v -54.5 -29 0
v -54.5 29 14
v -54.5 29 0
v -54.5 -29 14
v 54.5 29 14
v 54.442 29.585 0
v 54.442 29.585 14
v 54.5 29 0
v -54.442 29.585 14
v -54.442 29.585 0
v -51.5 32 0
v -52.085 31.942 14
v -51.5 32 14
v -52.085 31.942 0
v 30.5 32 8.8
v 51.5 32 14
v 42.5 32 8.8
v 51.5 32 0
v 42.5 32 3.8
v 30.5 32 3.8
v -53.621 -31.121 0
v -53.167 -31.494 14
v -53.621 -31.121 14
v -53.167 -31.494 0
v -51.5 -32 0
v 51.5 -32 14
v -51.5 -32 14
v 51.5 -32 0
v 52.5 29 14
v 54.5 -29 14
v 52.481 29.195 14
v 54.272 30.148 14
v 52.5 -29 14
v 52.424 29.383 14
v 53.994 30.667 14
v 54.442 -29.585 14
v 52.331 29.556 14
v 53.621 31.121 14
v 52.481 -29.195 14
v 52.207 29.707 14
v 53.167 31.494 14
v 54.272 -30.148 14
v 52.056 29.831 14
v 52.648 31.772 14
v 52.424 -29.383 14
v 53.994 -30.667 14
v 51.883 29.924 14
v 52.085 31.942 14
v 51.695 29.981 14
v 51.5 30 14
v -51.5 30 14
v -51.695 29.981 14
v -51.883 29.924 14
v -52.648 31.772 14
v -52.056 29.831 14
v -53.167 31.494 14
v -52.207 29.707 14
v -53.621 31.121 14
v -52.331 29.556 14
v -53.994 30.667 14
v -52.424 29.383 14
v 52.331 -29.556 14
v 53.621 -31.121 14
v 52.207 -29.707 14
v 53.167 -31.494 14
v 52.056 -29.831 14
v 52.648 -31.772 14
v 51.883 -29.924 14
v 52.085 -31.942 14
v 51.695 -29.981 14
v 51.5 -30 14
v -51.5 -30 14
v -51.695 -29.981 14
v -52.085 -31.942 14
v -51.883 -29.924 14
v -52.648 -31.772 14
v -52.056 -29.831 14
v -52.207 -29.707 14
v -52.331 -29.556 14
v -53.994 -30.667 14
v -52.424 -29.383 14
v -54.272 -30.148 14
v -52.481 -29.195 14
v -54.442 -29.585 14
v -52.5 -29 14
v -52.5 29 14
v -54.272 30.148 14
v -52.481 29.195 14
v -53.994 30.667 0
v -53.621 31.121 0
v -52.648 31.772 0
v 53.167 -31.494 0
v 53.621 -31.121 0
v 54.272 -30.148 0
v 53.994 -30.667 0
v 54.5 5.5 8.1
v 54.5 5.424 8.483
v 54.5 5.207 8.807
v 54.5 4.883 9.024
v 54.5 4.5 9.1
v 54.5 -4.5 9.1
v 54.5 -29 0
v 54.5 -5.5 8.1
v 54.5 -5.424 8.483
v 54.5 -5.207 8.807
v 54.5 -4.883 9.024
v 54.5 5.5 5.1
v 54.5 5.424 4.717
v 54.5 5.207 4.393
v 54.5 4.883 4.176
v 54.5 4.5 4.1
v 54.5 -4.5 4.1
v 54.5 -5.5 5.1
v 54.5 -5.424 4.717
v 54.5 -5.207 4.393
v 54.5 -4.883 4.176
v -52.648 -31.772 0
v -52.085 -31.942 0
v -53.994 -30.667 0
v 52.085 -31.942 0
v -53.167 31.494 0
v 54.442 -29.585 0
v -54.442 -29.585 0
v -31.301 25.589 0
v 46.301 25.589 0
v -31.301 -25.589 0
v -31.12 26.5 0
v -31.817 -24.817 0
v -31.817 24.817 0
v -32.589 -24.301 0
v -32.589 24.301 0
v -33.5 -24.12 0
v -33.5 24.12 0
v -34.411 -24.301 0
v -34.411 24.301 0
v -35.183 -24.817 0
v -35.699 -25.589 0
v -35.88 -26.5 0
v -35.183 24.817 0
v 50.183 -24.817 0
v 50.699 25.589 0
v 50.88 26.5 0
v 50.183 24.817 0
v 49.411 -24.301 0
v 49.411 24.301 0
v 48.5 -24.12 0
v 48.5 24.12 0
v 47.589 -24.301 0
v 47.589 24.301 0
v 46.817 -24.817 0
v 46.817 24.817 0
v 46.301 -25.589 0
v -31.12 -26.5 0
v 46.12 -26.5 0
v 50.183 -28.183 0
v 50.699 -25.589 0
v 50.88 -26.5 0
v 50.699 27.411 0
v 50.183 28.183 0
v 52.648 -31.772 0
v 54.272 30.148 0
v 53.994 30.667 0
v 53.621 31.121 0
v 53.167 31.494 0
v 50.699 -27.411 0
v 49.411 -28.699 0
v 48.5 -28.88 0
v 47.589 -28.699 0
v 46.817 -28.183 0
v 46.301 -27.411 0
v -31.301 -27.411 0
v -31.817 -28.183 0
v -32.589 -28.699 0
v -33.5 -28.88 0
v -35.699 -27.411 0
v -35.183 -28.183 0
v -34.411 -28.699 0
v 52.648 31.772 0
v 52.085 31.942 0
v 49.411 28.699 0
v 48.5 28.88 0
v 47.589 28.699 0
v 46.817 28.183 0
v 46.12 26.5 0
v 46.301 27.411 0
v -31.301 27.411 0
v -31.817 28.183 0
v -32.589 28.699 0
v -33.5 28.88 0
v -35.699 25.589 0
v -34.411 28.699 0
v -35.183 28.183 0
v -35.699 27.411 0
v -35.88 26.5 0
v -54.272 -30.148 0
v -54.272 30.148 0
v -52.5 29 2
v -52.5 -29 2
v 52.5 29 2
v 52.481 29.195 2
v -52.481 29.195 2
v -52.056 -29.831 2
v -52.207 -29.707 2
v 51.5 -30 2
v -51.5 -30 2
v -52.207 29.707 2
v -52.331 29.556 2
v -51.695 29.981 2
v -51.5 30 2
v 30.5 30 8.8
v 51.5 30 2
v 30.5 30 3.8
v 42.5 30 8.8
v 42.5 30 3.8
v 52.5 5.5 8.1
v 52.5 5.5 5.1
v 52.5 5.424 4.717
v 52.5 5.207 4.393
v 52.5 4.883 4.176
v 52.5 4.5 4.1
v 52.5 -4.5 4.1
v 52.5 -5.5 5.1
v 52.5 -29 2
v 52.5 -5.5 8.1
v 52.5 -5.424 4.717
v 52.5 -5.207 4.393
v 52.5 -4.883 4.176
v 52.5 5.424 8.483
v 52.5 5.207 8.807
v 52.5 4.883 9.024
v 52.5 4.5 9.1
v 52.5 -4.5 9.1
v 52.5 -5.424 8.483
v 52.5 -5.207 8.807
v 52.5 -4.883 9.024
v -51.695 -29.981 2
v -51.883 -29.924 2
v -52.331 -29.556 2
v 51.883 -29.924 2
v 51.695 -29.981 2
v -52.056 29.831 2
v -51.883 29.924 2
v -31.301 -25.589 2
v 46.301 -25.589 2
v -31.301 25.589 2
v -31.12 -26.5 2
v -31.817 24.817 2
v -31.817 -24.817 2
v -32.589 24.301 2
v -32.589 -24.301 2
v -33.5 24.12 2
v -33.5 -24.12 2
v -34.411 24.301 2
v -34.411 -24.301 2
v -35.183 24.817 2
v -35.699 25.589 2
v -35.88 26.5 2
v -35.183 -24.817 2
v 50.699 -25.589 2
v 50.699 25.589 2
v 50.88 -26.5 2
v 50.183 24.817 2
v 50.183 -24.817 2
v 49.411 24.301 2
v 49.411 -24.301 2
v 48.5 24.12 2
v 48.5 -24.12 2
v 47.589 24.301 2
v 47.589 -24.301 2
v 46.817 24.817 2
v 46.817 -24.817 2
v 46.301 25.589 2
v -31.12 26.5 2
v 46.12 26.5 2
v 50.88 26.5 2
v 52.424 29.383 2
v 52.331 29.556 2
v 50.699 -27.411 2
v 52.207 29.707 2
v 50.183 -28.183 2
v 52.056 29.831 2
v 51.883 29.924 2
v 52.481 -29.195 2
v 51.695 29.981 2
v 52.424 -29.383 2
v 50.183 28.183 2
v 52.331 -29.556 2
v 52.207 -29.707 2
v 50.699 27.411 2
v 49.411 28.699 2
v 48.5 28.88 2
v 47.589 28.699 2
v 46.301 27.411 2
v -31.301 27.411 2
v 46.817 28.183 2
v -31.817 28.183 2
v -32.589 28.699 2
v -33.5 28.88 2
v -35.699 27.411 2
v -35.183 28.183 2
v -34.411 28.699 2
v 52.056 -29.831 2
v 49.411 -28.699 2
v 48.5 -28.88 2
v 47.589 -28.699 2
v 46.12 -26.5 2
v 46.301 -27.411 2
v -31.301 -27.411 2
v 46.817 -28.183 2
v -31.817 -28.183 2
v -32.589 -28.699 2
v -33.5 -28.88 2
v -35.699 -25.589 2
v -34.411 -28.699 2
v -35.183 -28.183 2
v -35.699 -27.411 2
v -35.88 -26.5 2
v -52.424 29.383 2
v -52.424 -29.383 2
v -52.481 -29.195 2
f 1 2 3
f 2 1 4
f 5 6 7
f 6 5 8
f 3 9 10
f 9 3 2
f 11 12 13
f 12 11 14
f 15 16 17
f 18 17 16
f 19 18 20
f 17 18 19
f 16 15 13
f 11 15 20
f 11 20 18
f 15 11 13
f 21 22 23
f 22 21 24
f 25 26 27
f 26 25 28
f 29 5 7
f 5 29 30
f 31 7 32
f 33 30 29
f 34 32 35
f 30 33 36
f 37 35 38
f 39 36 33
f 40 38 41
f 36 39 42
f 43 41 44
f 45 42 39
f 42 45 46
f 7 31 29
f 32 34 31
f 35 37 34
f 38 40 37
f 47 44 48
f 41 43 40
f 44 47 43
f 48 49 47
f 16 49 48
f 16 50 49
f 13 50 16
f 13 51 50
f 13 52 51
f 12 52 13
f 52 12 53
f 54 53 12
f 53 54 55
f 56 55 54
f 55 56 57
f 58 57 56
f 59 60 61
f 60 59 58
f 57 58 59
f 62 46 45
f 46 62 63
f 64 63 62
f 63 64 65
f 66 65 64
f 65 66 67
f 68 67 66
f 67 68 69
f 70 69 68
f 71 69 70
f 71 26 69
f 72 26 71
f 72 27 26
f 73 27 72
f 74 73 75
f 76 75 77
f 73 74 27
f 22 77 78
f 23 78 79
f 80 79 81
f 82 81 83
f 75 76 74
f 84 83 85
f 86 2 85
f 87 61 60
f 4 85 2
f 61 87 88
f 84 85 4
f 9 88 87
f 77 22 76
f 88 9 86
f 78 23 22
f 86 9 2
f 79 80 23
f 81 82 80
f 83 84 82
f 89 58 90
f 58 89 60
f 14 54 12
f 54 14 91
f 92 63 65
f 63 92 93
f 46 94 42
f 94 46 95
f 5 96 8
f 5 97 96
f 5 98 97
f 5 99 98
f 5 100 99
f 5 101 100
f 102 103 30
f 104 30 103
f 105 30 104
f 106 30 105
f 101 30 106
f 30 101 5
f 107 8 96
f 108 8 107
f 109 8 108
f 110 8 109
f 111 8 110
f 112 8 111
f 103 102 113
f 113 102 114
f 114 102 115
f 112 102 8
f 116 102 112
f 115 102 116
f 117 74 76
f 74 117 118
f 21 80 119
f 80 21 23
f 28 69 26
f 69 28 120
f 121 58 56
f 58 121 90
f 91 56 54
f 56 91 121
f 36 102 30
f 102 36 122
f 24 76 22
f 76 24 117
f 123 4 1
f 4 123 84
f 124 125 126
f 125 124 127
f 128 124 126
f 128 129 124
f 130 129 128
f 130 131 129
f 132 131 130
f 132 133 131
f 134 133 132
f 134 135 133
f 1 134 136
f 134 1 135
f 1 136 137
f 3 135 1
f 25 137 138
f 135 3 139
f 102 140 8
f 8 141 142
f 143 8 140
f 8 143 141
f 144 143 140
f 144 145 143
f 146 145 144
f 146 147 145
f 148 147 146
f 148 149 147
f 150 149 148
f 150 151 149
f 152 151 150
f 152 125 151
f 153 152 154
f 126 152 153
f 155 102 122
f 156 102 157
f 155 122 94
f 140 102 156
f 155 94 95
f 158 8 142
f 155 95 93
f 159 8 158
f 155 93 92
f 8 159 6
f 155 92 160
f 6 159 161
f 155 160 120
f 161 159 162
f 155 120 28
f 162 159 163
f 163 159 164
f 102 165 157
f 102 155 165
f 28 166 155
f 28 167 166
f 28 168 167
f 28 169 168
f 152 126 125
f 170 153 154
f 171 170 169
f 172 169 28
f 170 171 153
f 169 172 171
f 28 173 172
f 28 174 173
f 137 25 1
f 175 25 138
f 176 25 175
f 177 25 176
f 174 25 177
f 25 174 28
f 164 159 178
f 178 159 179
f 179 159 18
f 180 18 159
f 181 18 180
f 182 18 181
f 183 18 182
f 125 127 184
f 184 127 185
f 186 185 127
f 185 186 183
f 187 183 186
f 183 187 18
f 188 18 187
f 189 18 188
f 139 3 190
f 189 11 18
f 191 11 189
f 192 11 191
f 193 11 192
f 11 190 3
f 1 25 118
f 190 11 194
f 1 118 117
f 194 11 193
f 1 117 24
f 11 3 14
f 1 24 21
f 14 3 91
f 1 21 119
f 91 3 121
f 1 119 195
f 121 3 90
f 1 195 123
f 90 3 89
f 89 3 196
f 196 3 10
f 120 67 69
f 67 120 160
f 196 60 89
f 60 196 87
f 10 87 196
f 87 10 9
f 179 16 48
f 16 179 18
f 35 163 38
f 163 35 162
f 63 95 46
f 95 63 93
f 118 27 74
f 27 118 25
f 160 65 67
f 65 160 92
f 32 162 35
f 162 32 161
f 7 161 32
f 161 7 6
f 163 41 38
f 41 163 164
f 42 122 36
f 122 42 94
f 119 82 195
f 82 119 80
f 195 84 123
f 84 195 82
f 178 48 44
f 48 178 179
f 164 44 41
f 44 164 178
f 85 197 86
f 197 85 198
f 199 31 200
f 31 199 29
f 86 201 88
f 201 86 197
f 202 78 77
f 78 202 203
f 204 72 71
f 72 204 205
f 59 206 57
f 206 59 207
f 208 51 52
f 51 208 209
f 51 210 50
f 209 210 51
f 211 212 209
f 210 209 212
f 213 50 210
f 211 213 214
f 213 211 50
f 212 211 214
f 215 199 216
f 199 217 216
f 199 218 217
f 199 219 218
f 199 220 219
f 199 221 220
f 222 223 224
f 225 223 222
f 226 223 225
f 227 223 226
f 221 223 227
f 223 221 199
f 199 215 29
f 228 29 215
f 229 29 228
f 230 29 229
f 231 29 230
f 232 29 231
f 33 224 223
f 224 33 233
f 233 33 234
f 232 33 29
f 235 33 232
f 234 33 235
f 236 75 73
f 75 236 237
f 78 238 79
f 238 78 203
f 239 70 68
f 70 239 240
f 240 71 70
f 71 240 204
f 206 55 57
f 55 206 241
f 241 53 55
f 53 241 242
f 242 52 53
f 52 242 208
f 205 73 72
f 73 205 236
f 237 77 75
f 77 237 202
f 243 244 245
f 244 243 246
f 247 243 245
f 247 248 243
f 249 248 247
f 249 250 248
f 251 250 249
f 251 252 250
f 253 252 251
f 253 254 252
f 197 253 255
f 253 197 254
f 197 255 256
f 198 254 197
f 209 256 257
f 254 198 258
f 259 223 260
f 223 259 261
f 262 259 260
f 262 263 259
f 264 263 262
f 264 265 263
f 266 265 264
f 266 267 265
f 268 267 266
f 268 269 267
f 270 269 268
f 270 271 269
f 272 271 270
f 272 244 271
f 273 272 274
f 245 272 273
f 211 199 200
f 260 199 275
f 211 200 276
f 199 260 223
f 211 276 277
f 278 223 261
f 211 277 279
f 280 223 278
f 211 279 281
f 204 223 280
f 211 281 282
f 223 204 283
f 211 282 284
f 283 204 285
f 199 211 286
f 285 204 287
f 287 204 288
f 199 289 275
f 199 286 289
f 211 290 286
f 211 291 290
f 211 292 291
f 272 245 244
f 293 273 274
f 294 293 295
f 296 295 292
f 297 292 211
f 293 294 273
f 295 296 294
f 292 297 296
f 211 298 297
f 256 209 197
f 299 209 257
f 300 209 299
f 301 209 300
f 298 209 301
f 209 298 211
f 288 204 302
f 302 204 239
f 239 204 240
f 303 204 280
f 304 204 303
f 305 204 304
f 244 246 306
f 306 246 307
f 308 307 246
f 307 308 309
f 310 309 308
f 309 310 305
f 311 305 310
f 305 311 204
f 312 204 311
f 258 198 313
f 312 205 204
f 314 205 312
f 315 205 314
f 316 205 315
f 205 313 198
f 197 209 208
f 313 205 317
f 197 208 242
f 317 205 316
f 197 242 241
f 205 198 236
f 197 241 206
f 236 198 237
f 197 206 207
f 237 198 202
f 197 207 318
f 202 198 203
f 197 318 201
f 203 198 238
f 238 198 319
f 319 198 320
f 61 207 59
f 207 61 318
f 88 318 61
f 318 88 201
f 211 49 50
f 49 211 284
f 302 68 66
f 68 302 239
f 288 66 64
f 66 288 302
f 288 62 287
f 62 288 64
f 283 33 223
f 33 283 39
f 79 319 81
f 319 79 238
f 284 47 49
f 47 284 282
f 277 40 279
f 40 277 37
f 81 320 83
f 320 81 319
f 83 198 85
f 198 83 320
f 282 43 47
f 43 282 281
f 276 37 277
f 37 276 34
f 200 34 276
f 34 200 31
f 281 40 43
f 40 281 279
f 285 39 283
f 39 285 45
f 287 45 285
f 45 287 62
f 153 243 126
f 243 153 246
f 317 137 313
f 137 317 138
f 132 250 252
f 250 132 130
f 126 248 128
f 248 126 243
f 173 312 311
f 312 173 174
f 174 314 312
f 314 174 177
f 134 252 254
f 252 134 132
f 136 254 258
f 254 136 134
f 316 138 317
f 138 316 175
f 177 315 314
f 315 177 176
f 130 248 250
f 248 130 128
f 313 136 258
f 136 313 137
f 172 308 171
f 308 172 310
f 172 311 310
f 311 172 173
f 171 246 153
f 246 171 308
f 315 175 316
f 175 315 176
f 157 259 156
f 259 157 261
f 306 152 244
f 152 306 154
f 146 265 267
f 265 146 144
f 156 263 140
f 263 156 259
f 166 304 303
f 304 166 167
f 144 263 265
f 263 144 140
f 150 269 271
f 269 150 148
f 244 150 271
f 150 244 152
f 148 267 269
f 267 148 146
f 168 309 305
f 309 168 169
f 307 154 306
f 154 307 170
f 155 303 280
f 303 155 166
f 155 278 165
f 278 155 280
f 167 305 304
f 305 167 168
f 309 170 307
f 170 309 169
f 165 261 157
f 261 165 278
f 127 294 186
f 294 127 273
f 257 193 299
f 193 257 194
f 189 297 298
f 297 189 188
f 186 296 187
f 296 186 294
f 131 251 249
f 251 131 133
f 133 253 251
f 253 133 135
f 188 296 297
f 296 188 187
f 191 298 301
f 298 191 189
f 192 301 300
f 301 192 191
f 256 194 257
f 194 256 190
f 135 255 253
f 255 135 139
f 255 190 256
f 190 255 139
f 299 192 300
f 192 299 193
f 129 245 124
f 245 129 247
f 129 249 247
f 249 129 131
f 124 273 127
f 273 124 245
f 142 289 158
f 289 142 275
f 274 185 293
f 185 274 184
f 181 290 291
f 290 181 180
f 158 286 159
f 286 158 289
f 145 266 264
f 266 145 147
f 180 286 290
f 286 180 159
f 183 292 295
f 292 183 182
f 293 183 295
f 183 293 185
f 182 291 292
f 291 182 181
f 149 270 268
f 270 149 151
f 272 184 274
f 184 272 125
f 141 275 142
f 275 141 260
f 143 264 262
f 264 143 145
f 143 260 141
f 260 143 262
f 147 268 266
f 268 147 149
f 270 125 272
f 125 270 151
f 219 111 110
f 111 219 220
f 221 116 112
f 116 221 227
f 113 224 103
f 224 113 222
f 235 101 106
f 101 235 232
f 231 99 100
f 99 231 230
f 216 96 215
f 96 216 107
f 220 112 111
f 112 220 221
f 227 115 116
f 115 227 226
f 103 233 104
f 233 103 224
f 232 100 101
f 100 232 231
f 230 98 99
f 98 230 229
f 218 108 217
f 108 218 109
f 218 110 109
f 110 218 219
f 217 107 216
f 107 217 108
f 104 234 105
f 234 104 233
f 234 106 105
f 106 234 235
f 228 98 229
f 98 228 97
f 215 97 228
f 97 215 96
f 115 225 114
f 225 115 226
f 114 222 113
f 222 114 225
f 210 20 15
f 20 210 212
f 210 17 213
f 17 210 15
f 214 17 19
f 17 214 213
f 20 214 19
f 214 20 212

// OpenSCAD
// MacroPad RP2040 Case (Bottom and Sides)
// Companion to macropad_top_cover.scad
// Parametric design for Adafruit MacroPad RP2040 keyboard controller
// Author: Generated for CircuitPython EVM Controller project
// License: MIT

// =============================================================================
// PARAMETERS - Match your top cover dimensions
// =============================================================================

// RP2040 PCB parameters
pcb_length = 105;          // RP2040 PCB length (mm)
pcb_width = 60;            // RP2040 PCB width (mm)
pcb_thickness = 1.6;       // Standard PCB thickness (mm)
pcb_clearance = 1;         // Space around PCB (mm)
pcb_height_clearance = 8;  // Space above PCB for components (mm)

// Overall case dimensions (should match top cover)
bottom_thickness = 2;      // Thickness of bottom plate (mm)
wall_thickness = 2;        // Thickness of side walls (mm)
corner_radius = 3;         // Rounded corner radius (mm)
inner_corner_radius = 1;   // Rounded inner corner radius

case_length = pcb_length + (wall_thickness * 2);   // Total length of case (mm)
case_width = pcb_width +  + (wall_thickness * 2);  // Total width of case (mm)
case_height = 14;          // Height of case walls (mm)

// Top cover integration
top_cover_thickness = 3;   // Thickness of top cover (for fit calculation)
top_cover_lip = 1;         // How much top cover overlaps case walls (mm)

// USB port cutout
usb_width = 11;             // Width of USB-C port (mm)
usb_height = 5;            // ** Was 4 - Height of USB-C port (mm)
usb_offset_from_edge = 3;  // Distance from PCB edge to USB center (mm)
usb_position_y = 0;        // Y position along case width (0 = center)
usb_corner_radius = 1;     // Rounded corners for USB hole

// PCB mounting holes keep 2mm for wall in mind
mount_hole_diameter = 4.56;   // Diameter for M3 screws (mm)
mount_hole_positions = [   // [X, Y] positions relative to PCB center
    [-pcb_length/2 + 19, -26.5],   // Bottom left
    [pcb_length/2 - 4, -26.5],   // Bottom right  
    [-pcb_length/2 + 19, 26.5],    // Top left
    [pcb_length/2 - 4, 26.5]     // Top right
];

// Standoffs for PCB mounting
standoff_height = 6;         // Height of PCB standoffs (mm)
standoff_diameter = 5.2;     // Diameter of standoff base (mm)
standoff_hole_diameter = 2.5; // Hole diameter in standoff for screw (mm)

// 3D printing parameters
clearance = 0.2;           // General clearance (mm)
layer_height = 0.2;        // Your 3D printer layer height (mm)


// =============================================================================
// MAIN OBJECT
// =============================================================================

difference() {
    union() {
        // Main case body
        case_body();

        // PCB mounting standoffs
        pcb_standoffs();
    }        

    // Remove internal cavity
    internal_cavity();

    // Remove USB port hole
    usb_port_hole();
    
    // Do one of the following:
    // 1. Remove Reset port hole
    //reset_port_hole();

    // 2. Remove larger QWIC port hole
    qwiic_port_hole();

    // Remove PCB mounting holes
    pcb_mounting_holes();
}

// Optional: Show PCB position for reference (comment out for final print)
// %pcb_reference();

// =============================================================================
// MODULES (Functions)
// =============================================================================

// Create the main case body with walls
module case_body() {
    // Bottom plate
    hull() {
        // Four corner cylinders for rounded rectangle base
        translate([-(case_length/2 - corner_radius), -(case_width/2 - corner_radius), 0])
            cylinder(h = bottom_thickness, r = corner_radius, $fn = 32);
        
        translate([+(case_length/2 - corner_radius), -(case_width/2 - corner_radius), 0])
            cylinder(h = bottom_thickness, r = corner_radius, $fn = 32);
        
        translate([+(case_length/2 - corner_radius), +(case_width/2 - corner_radius), 0])
            cylinder(h = bottom_thickness, r = corner_radius, $fn = 32);
        
        translate([-(case_length/2 - corner_radius), +(case_width/2 - corner_radius), 0])
            cylinder(h = bottom_thickness, r = corner_radius, $fn = 32);
    }
    
    // Side walls
    difference() {
        // Outer wall
        hull() {
            translate([-(case_length/2 - corner_radius), -(case_width/2 - corner_radius), 0])
                cylinder(h = case_height, r = corner_radius, $fn = 32);
            
            translate([+(case_length/2 - corner_radius), -(case_width/2 - corner_radius), 0])
                cylinder(h = case_height, r = corner_radius, $fn = 32);
            
            translate([+(case_length/2 - corner_radius), +(case_width/2 - corner_radius), 0])
                cylinder(h = case_height, r = corner_radius, $fn = 32);
            
            translate([-(case_length/2 - corner_radius), +(case_width/2 - corner_radius), 0])
                cylinder(h = case_height, r = corner_radius, $fn = 32);
        }
        
        // Inner cavity (removed in main difference)
        translate([0, 0, bottom_thickness])
            hull() {
                inner_radius = corner_radius - wall_thickness;
                inner_length = case_length - 2 * wall_thickness;
                inner_width = case_width - 2 * wall_thickness;
                
                translate([-(inner_length/2 - inner_radius), -(inner_width/2 - inner_radius), 0])
                    cylinder(h = case_height, r = inner_radius, $fn = 32);
                
                translate([+(inner_length/2 - inner_radius), -(inner_width/2 - inner_radius), 0])
                    cylinder(h = case_height, r = inner_radius, $fn = 32);
                
                translate([+(inner_length/2 - inner_radius), +(inner_width/2 - inner_radius), 0])
                    cylinder(h = case_height, r = inner_radius, $fn = 32);
                
                translate([-(inner_length/2 - inner_radius), +(inner_width/2 - inner_radius), 0])
                    cylinder(h = case_height, r = inner_radius, $fn = 32);
            }
    }
    
    // Top cover lip/ledge
    translate([0, 0, case_height - top_cover_thickness]) {
        difference() {
            // Outer ledge
            hull() {
                translate([-(case_length/2 - corner_radius), -(case_width/2 - corner_radius), 0])
                    cylinder(h = top_cover_thickness, r = corner_radius, $fn = 32);
                
                translate([+(case_length/2 - corner_radius), -(case_width/2 - corner_radius), 0])
                    cylinder(h = top_cover_thickness, r = corner_radius, $fn = 32);
                
                translate([+(case_length/2 - corner_radius), +(case_width/2 - corner_radius), 0])
                    cylinder(h = top_cover_thickness, r = corner_radius, $fn = 32);
                
                translate([-(case_length/2 - corner_radius), +(case_width/2 - corner_radius), 0])
                    cylinder(h = top_cover_thickness, r = corner_radius, $fn = 32);
            }
            
            // Inner cutout for top cover
            hull() {
                ledge_radius = corner_radius - top_cover_lip;
                ledge_length = case_length - 2 * top_cover_lip;
                ledge_width = case_width - 2 * top_cover_lip;
                
                translate([-(ledge_length/2 - ledge_radius), -(ledge_width/2 - ledge_radius), -0.5])
                    cylinder(h = top_cover_thickness + 1, r = ledge_radius, $fn = 32);
                
                translate([+(ledge_length/2 - ledge_radius), -(ledge_width/2 - ledge_radius), -0.5])
                    cylinder(h = top_cover_thickness + 1, r = ledge_radius, $fn = 32);
                
                translate([+(ledge_length/2 - ledge_radius), +(ledge_width/2 - ledge_radius), -0.5])
                    cylinder(h = top_cover_thickness + 1, r = ledge_radius, $fn = 32);
                
                translate([-(ledge_length/2 - ledge_radius), +(ledge_width/2 - ledge_radius), -0.5])
                    cylinder(h = top_cover_thickness + 1, r = ledge_radius, $fn = 32);
            }
        }
    }
}

// Create internal cavity (removed from main body)
module internal_cavity() {
    translate([0, 0, bottom_thickness]) {
        inner_radius = inner_corner_radius;
        inner_length = case_length - 2 * wall_thickness;
        inner_width = case_width - 2 * wall_thickness;
        
        hull() {
            translate([-(inner_length/2 - inner_radius), -(inner_width/2 - inner_radius), 0])
                cylinder(h = case_height, r = inner_radius, $fn = 32);
            
            translate([+(inner_length/2 - inner_radius), -(inner_width/2 - inner_radius), 0])
                cylinder(h = case_height, r = inner_radius, $fn = 32);
            
            translate([+(inner_length/2 - inner_radius), +(inner_width/2 - inner_radius), 0])
                cylinder(h = case_height, r = inner_radius, $fn = 32);
            
            translate([-(inner_length/2 - inner_radius), +(inner_width/2 - inner_radius), 0])
                cylinder(h = case_height, r = inner_radius, $fn = 32);
        }
    }
}

// Create PCB mounting standoffs
module pcb_standoffs() {
    for (pos = mount_hole_positions) {
        translate([pos[0], pos[1], bottom_thickness]) {
            cylinder(
                h = standoff_height, 
                d = standoff_diameter, 
                $fn = 16
            );
        }
    }
}

// Create USB port hole
module usb_port_hole() {
    // Position USB hole on the side wall
    translate([
        (case_length/2 - usb_offset_from_edge), 
        usb_position_y, 
        bottom_thickness + standoff_height + pcb_thickness + usb_height/2 - 5.5
    ]) {
        rotate([0, 90, 0]) {
            // Rounded rectangles for USB port using cylinders
            hull() {
                translate([-(usb_height/2 - usb_corner_radius), -(usb_width/2 - usb_corner_radius), 0])
                    cylinder(h = wall_thickness + 2, r = usb_corner_radius, $fn = 16);
                
                translate([+(usb_height/2 - usb_corner_radius), -(usb_width/2 - usb_corner_radius), 0])
                    cylinder(h = wall_thickness + 2, r = usb_corner_radius, $fn = 16);
                
                translate([+(usb_height/2 - usb_corner_radius), +(usb_width/2 - usb_corner_radius), 0])
                    cylinder(h = wall_thickness + 2, r = usb_corner_radius, $fn = 16);
                
                translate([-(usb_height/2 - usb_corner_radius), +(usb_width/2 - usb_corner_radius), 0])
                    cylinder(h = wall_thickness + 2, r = usb_corner_radius, $fn = 16);
            }
        }
    }
}


// Create Reset port hole
module reset_port_hole() {
    // Position Reset hole on the side wall
    translate([
        -usb_position_y + (pcb_length/2 - 22), 
        (case_width/2 + usb_offset_from_edge - 1), 
        bottom_thickness + standoff_height + pcb_thickness + usb_height/2 - 5
    ]) {
        rotate([0, 90, 0]) {
            // Rounded rectangles for Reset port using cylinders
            hull() {
                translate([-(usb_height/2 - usb_corner_radius), -(usb_width/2 - usb_corner_radius), 0])
                    cylinder(h = wall_thickness + 2, r = usb_corner_radius, $fn = 16);
                
                translate([+(usb_height/2 - usb_corner_radius), -(usb_width/2 - usb_corner_radius), 0])
                    cylinder(h = wall_thickness + 2, r = usb_corner_radius, $fn = 16);
                
                translate([+(usb_height/2 - usb_corner_radius), +(usb_width/2 - usb_corner_radius), 0])
                    cylinder(h = wall_thickness + 2, r = usb_corner_radius, $fn = 16);
                
                translate([-(usb_height/2 - usb_corner_radius), +(usb_width/2 - usb_corner_radius), 0])
                    cylinder(h = wall_thickness + 2, r = usb_corner_radius, $fn = 16);
            }
        }
    }
}

// Add space for QWIC adapter to be added to the board
module qwiic_port_hole() {
    
    //qwiic dimensions = 6 x 4 x 4mm
    
    reset_width = 12;
    reset_height = 5;
    pcb_height = bottom_thickness + standoff_height;
    reset_offset_z = pcb_height + pcb_thickness / 2 - reset_height;
        
    color("blue")
        translate ([case_length/2 - 24, case_width/2 - 3, reset_offset_z])
            cube(size = [reset_width, 4, reset_height]);
}

// Create PCB mounting holes
module pcb_mounting_holes() {
    for (pos = mount_hole_positions) {
        translate([pos[0], pos[1], -0.5]) {
            // Through hole for screw
            cylinder(
                h = case_height + 1, 
                d = mount_hole_diameter + clearance, 
                $fn = 16
            );
            
            // Countersink hole in standoff
            translate([0, 0, bottom_thickness]) {
                cylinder(
                    h = standoff_height + 0.5, 
                    d = standoff_hole_diameter + clearance, 
                    $fn = 16
                );
            }
        }
    }
}

// Create small PCB lip to lock cover plate in on the left and right
module cover_left_lip() {
    // Position Reset hole on the side wall
    color ("red") translate([
        usb_position_y, 
        (case_width/2 - 2), 
        bottom_thickness + standoff_height + pcb_thickness + usb_height/2 - 2
    ]) {
        cube(cover_lip_indent, center = true);
    }
}

// Create small PCB lip to lock top plate in on the left and right
module cover_right_lip() {
    // Position Reset hole on the side wall
    color ("red") translate([
        -usb_position_y, 
        -(case_width/2 - 2), 
        bottom_thickness + standoff_height + pcb_thickness + usb_height/2 - 2
    ]) {
        cube(cover_lip_indent, center = true);
    }
}


// Reference module to show PCB position (for design verification)
module pcb_reference() {
    translate([0, 0, bottom_thickness + standoff_height]) {
        // PCB outline
        color("green", 0.3) {
            hull() {
                pcb_corner_radius = 2;
                translate([-(pcb_length/2 - pcb_corner_radius), -(pcb_width/2 - pcb_corner_radius), 0])
                    cylinder(h = pcb_thickness, r = pcb_corner_radius, $fn = 16);
                
                translate([+(pcb_length/2 - pcb_corner_radius), -(pcb_width/2 - pcb_corner_radius), 0])
                    cylinder(h = pcb_thickness, r = pcb_corner_radius, $fn = 16);
                
                translate([+(pcb_length/2 - pcb_corner_radius), +(pcb_width/2 - pcb_corner_radius), 0])
                    cylinder(h = pcb_thickness, r = pcb_corner_radius, $fn = 16);
                
                translate([-(pcb_length/2 - pcb_corner_radius), +(pcb_width/2 - pcb_corner_radius), 0])
                    cylinder(h = pcb_thickness, r = pcb_corner_radius, $fn = 16);
            }
        }
        
        // Component clearance volume
        color("blue", 0.1) {
            translate([0, 0, pcb_thickness]) {
                hull() {
                    pcb_corner_radius = 2;
                    translate([-(pcb_length/2 - pcb_corner_radius), -(pcb_width/2 - pcb_corner_radius), 0])
                        cylinder(h = pcb_height_clearance, r = pcb_corner_radius, $fn = 16);
                    
                    translate([+(pcb_length/2 - pcb_corner_radius), -(pcb_width/2 - pcb_corner_radius), 0])
                        cylinder(h = pcb_height_clearance, r = pcb_corner_radius, $fn = 16);
                    
                    translate([+(pcb_length/2 - pcb_corner_radius), +(pcb_width/2 - pcb_corner_radius), 0])
                        cylinder(h = pcb_height_clearance, r = pcb_corner_radius, $fn = 16);
                    
                    translate([-(pcb_length/2 - pcb_corner_radius), +(pcb_width/2 - pcb_corner_radius), 0])
                        cylinder(h = pcb_height_clearance, r = pcb_corner_radius, $fn = 16);
                }
            }
        }
        
        // Mounting holes
        color("red") {
            for (pos = mount_hole_positions) {
                translate([pos[0], pos[1], 0]) {
                    cylinder(h = bottom_thickness, d = 3.2, $fn = 16);
                }
            }
        }
    }
}
